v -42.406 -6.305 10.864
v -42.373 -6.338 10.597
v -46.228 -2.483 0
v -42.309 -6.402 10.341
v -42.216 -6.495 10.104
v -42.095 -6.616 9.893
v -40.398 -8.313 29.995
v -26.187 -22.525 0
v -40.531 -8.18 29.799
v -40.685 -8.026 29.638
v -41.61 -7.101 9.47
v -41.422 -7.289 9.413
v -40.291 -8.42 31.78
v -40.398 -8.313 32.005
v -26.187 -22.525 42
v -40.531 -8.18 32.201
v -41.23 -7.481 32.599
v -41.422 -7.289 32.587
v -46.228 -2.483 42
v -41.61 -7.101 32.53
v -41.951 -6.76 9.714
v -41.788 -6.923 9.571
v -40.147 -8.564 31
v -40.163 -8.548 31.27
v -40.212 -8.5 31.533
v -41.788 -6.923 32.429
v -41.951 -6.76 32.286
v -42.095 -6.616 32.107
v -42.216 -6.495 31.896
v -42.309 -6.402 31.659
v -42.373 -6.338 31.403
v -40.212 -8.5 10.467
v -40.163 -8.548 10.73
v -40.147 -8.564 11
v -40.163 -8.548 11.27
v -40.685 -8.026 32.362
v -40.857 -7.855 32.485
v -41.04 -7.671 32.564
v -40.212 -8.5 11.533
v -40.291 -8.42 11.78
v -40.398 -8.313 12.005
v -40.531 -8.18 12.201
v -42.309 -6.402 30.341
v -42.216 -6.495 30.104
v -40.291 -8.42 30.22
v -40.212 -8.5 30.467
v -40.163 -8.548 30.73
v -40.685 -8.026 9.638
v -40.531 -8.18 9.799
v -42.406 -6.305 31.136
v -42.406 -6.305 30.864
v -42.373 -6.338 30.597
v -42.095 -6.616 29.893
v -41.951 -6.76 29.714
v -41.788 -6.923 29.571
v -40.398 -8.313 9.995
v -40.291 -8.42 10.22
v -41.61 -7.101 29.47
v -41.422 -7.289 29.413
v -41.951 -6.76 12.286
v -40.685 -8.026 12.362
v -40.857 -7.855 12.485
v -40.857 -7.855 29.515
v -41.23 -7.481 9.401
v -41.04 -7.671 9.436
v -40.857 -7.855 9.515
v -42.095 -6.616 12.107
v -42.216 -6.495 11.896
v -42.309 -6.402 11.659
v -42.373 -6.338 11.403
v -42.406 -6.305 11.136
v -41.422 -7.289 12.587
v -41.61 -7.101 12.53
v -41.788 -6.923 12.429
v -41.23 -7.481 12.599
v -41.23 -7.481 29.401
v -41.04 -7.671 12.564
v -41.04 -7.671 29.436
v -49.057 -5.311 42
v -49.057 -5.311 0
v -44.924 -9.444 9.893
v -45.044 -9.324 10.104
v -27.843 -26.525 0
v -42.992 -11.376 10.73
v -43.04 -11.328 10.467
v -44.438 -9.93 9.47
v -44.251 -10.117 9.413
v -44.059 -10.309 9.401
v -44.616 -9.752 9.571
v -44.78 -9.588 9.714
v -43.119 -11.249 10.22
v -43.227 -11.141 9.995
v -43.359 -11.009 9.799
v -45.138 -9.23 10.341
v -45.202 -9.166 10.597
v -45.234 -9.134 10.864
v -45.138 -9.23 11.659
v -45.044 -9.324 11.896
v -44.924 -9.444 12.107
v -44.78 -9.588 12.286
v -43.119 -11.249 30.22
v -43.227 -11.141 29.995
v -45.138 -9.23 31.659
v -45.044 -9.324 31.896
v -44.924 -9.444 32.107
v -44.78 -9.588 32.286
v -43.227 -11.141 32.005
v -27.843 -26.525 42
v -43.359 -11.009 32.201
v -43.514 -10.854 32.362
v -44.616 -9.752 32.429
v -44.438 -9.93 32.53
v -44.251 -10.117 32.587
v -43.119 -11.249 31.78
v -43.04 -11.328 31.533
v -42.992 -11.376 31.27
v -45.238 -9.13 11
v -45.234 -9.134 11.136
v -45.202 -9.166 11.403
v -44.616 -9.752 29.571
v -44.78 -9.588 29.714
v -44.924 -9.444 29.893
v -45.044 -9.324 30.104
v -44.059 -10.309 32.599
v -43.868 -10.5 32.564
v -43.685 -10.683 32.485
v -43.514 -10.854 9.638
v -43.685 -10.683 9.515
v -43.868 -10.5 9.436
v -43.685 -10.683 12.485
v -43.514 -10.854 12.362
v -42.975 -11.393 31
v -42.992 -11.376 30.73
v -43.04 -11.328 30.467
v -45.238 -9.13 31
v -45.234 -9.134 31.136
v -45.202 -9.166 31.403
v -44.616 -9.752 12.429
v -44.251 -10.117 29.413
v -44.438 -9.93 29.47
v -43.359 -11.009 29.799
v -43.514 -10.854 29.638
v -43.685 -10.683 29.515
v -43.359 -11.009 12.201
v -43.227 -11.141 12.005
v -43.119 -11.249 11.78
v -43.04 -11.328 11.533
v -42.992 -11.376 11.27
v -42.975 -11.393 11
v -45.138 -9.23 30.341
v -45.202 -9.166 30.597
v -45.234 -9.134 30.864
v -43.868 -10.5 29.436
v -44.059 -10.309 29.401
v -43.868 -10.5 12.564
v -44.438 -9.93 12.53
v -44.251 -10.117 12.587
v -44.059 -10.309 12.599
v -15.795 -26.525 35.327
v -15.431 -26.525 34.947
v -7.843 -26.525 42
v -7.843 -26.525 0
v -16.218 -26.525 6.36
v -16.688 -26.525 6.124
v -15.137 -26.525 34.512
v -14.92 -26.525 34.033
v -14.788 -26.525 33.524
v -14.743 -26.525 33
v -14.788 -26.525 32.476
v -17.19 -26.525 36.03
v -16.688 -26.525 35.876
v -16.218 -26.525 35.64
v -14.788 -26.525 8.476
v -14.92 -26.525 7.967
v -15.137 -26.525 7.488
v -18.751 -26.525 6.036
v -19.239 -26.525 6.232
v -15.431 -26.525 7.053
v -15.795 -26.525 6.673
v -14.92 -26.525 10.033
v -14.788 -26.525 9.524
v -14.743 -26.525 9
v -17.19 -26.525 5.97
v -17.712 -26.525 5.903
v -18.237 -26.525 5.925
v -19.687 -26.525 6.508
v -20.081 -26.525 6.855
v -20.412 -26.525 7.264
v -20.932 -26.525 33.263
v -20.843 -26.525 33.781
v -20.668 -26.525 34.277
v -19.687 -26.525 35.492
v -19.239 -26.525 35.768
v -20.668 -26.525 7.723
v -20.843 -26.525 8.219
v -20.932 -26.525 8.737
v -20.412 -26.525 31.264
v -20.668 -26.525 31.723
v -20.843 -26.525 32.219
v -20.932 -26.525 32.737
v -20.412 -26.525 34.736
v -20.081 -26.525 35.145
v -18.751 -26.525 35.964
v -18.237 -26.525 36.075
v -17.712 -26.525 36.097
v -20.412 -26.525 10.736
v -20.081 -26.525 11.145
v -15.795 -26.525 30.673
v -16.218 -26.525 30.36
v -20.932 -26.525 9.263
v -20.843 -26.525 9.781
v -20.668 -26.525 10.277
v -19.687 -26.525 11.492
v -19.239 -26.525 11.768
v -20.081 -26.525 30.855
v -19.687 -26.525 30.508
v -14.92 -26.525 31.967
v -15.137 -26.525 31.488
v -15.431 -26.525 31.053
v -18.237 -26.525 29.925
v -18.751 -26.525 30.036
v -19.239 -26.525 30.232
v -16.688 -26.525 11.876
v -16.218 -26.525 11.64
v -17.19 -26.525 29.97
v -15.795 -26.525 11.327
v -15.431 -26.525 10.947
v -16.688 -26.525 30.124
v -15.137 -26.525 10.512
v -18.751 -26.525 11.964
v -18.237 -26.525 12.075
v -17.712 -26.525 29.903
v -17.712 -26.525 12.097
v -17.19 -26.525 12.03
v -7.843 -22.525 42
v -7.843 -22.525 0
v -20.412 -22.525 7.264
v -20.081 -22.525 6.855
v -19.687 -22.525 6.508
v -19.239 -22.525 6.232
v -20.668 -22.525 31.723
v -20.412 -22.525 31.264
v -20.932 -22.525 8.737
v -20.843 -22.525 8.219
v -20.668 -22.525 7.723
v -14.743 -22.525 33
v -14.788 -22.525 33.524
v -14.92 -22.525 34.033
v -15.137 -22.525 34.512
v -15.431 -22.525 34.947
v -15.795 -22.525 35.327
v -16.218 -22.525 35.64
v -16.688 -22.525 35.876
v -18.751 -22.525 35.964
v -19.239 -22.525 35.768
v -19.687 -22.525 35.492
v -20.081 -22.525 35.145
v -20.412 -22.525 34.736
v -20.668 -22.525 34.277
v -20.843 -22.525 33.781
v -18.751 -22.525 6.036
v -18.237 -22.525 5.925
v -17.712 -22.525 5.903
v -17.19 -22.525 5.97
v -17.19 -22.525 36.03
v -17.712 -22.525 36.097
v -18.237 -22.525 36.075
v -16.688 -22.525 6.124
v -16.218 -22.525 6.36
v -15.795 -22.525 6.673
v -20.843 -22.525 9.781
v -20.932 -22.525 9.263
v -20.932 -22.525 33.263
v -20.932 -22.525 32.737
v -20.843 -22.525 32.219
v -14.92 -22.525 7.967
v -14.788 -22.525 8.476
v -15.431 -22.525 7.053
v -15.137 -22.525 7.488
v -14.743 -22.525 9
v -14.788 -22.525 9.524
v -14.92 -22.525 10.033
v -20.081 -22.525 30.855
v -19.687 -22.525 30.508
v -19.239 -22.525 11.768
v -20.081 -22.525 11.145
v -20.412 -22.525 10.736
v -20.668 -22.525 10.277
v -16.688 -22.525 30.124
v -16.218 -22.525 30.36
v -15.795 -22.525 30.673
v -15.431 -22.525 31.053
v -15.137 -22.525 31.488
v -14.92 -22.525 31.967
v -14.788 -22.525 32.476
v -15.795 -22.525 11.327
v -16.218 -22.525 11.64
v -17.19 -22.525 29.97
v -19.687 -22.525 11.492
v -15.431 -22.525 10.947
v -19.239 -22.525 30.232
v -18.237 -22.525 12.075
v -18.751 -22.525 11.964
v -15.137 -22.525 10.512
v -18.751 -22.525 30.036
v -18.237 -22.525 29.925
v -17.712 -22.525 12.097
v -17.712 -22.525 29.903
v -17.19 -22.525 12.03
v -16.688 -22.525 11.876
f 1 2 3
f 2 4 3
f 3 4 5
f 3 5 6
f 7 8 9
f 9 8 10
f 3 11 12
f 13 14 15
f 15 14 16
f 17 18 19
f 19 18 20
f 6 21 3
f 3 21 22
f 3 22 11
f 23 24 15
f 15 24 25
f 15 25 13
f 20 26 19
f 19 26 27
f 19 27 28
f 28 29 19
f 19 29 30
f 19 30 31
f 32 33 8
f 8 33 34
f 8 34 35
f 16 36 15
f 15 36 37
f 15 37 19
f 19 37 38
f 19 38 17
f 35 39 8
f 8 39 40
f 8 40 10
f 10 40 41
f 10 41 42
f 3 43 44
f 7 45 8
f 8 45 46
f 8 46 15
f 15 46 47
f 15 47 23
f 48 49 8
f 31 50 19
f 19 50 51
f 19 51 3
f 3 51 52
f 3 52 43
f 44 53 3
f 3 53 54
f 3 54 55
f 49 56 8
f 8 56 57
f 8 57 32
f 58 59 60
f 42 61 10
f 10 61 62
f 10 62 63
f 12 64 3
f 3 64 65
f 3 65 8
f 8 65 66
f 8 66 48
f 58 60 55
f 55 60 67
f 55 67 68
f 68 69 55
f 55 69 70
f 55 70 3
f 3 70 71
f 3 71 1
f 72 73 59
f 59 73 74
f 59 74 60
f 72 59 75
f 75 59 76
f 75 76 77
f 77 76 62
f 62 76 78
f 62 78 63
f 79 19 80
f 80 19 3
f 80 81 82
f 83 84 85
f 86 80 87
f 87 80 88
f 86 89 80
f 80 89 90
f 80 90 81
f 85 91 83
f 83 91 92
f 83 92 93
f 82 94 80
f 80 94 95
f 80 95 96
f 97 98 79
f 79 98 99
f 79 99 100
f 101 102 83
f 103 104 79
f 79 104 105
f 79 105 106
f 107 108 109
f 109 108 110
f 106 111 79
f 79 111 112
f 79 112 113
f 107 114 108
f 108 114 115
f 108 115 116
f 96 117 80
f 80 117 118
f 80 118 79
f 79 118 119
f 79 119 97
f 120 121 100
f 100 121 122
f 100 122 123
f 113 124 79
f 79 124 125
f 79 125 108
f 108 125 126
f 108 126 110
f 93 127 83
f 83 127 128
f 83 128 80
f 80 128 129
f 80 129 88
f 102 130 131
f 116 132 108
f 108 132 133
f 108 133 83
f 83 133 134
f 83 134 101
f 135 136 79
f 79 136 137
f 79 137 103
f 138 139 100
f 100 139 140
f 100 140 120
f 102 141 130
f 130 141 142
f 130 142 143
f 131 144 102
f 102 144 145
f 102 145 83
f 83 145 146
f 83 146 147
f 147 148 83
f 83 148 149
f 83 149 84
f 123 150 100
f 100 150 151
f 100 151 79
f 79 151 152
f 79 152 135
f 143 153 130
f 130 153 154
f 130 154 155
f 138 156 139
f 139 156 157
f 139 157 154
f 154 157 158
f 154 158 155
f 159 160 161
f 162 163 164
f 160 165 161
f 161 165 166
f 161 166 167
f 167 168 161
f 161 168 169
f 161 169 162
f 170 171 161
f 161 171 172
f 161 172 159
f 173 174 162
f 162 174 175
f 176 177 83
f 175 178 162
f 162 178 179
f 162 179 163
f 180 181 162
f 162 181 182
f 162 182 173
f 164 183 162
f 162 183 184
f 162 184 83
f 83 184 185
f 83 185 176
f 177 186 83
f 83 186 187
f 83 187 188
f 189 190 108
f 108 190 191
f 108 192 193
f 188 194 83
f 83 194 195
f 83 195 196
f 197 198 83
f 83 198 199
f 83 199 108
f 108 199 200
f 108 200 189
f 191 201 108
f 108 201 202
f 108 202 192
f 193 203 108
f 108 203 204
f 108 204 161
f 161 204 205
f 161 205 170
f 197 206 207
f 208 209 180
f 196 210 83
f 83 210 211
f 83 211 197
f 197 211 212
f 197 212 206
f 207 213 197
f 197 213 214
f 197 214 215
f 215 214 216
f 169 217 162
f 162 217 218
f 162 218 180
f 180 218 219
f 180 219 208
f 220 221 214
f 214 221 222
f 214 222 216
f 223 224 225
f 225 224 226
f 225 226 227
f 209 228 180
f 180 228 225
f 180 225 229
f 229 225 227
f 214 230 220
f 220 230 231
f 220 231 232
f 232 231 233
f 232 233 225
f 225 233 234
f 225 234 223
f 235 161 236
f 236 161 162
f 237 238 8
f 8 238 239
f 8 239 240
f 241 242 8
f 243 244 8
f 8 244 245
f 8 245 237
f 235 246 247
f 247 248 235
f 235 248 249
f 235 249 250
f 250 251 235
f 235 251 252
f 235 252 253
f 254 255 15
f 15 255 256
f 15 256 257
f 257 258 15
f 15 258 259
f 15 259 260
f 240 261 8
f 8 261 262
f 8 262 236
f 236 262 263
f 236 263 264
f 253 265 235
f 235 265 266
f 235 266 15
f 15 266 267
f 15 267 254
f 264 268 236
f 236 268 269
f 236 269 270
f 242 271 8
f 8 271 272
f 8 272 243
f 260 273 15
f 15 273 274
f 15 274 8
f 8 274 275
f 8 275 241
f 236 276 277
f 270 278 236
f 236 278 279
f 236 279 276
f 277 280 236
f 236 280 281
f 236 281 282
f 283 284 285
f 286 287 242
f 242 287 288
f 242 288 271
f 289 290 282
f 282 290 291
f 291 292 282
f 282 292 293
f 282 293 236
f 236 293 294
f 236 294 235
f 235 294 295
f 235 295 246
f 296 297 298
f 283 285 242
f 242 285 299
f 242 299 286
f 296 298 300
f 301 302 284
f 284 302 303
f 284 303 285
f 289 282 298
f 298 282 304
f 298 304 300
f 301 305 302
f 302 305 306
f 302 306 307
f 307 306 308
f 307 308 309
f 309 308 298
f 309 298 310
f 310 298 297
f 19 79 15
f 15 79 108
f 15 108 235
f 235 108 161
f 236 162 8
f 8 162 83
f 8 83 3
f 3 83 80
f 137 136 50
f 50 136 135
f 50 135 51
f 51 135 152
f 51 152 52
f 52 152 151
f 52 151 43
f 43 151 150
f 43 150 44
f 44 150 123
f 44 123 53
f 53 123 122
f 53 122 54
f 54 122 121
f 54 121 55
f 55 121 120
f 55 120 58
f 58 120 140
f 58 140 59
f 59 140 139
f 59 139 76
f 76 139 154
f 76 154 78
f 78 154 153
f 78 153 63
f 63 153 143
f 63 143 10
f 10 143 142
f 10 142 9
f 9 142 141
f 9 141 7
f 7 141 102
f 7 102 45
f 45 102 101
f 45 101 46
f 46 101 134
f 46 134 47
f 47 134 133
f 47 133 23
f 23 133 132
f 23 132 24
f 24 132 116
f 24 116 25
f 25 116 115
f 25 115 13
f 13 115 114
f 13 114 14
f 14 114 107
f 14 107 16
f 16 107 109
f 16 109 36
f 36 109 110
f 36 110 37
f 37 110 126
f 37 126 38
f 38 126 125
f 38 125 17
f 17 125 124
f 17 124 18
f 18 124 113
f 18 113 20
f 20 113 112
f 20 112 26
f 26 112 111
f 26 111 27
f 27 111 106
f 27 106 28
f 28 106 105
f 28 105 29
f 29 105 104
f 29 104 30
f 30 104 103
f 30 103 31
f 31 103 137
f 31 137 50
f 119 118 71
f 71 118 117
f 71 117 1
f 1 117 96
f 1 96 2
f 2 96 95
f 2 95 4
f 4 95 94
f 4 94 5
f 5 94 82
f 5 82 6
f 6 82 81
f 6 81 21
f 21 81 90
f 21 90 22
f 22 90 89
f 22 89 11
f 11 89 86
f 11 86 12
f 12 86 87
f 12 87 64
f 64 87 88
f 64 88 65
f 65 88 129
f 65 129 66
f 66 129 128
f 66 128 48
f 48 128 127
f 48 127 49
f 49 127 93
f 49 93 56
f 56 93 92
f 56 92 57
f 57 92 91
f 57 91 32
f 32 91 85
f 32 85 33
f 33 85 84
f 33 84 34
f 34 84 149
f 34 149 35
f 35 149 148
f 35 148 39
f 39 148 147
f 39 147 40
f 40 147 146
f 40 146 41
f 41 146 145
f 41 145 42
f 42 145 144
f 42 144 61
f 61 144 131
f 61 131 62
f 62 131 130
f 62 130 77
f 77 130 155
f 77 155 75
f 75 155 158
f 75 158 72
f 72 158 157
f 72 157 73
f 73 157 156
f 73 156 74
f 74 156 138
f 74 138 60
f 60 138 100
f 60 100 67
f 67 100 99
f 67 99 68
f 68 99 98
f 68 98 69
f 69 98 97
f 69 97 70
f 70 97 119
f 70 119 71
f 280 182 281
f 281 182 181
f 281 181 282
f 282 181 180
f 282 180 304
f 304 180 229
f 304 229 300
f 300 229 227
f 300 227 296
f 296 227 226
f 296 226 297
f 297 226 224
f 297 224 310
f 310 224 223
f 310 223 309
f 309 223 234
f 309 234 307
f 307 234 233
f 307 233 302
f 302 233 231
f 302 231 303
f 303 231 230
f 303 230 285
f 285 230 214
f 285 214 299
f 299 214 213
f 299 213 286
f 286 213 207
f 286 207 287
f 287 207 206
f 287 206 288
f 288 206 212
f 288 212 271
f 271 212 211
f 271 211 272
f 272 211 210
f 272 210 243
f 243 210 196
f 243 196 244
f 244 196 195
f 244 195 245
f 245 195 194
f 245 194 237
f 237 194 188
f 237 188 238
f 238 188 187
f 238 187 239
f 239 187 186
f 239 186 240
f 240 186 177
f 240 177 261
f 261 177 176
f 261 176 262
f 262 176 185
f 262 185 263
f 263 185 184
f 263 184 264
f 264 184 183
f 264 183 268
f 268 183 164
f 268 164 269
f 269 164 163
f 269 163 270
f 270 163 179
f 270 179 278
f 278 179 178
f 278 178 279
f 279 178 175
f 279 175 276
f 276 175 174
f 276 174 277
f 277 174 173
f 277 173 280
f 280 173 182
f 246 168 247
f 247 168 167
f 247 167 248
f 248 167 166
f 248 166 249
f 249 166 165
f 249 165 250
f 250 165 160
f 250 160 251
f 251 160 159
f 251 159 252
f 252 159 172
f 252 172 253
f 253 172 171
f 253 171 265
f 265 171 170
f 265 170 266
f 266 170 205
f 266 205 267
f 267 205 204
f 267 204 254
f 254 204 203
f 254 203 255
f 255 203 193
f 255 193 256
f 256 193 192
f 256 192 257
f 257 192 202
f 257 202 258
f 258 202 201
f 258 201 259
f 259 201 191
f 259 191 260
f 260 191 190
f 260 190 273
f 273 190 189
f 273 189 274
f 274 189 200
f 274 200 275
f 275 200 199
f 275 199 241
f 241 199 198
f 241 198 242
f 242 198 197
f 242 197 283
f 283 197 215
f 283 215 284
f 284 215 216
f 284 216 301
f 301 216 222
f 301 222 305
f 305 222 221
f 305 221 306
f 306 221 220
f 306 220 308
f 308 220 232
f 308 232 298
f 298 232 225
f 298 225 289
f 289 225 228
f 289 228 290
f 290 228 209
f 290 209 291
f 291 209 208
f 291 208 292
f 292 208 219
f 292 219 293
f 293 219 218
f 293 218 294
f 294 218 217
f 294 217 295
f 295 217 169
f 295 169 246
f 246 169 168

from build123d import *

# Parameters (mm, degrees)
BOSS_EXTRUDE1_DEPTH     = 42
CUT_EXTRUDE1_DEPTH      = 54.409262615
CUT_EXTRUDE1_DEPTH_BACK = 54.409262615
SKETCH4_R               = 1.6
SKETCH5_R               = 3.1
CUT_EXTRUDE2_DEPTH      = 69.909723571


with BuildPart() as part:
    # Sketch1 → Boss-Extrude1 (new body)
    with BuildSketch(Plane.XY):
        Polygon((-26.186542305, -22.524647199), (-7.843396555, -22.524647199), (-7.843396555, -26.524647199), (-27.843396555, -26.524647199), (-49.05659999, -5.311443763), (-46.228172865, -2.483016639), align=None)
    extrude(amount=BOSS_EXTRUDE1_DEPTH)

    # Sketch4 → Cut-Extrude1 (cut, two sides: drawn at the far end of the back side and taken through both)
    with BuildSketch(Plane(origin=(-27.184021877, -27.184021877, 0), x_dir=(0, 0, 1), z_dir=(-0.7071067811865462, -0.707106781186549, 0)).offset(-CUT_EXTRUDE1_DEPTH_BACK)):
        with Locations(Location((31, 23.932496612, 0), (0, 0, 270))):
            Circle(SKETCH4_R)
        with Locations(Location((11, 23.932496612, 0), (0, 0, 270))):
            Circle(SKETCH4_R)
    extrude(amount=CUT_EXTRUDE1_DEPTH + CUT_EXTRUDE1_DEPTH_BACK, mode=Mode.SUBTRACT)

    # Sketch5 → Cut-Extrude2 (cut, through all)
    with BuildSketch(Plane.XZ.offset(26.524647199)):
        with Locations((-17.843396555, 33)):
            Circle(SKETCH5_R)
        with Locations((-17.843396555, 9)):
            Circle(SKETCH5_R)
    extrude(amount=-CUT_EXTRUDE2_DEPTH, mode=Mode.SUBTRACT)


solid = part.part
